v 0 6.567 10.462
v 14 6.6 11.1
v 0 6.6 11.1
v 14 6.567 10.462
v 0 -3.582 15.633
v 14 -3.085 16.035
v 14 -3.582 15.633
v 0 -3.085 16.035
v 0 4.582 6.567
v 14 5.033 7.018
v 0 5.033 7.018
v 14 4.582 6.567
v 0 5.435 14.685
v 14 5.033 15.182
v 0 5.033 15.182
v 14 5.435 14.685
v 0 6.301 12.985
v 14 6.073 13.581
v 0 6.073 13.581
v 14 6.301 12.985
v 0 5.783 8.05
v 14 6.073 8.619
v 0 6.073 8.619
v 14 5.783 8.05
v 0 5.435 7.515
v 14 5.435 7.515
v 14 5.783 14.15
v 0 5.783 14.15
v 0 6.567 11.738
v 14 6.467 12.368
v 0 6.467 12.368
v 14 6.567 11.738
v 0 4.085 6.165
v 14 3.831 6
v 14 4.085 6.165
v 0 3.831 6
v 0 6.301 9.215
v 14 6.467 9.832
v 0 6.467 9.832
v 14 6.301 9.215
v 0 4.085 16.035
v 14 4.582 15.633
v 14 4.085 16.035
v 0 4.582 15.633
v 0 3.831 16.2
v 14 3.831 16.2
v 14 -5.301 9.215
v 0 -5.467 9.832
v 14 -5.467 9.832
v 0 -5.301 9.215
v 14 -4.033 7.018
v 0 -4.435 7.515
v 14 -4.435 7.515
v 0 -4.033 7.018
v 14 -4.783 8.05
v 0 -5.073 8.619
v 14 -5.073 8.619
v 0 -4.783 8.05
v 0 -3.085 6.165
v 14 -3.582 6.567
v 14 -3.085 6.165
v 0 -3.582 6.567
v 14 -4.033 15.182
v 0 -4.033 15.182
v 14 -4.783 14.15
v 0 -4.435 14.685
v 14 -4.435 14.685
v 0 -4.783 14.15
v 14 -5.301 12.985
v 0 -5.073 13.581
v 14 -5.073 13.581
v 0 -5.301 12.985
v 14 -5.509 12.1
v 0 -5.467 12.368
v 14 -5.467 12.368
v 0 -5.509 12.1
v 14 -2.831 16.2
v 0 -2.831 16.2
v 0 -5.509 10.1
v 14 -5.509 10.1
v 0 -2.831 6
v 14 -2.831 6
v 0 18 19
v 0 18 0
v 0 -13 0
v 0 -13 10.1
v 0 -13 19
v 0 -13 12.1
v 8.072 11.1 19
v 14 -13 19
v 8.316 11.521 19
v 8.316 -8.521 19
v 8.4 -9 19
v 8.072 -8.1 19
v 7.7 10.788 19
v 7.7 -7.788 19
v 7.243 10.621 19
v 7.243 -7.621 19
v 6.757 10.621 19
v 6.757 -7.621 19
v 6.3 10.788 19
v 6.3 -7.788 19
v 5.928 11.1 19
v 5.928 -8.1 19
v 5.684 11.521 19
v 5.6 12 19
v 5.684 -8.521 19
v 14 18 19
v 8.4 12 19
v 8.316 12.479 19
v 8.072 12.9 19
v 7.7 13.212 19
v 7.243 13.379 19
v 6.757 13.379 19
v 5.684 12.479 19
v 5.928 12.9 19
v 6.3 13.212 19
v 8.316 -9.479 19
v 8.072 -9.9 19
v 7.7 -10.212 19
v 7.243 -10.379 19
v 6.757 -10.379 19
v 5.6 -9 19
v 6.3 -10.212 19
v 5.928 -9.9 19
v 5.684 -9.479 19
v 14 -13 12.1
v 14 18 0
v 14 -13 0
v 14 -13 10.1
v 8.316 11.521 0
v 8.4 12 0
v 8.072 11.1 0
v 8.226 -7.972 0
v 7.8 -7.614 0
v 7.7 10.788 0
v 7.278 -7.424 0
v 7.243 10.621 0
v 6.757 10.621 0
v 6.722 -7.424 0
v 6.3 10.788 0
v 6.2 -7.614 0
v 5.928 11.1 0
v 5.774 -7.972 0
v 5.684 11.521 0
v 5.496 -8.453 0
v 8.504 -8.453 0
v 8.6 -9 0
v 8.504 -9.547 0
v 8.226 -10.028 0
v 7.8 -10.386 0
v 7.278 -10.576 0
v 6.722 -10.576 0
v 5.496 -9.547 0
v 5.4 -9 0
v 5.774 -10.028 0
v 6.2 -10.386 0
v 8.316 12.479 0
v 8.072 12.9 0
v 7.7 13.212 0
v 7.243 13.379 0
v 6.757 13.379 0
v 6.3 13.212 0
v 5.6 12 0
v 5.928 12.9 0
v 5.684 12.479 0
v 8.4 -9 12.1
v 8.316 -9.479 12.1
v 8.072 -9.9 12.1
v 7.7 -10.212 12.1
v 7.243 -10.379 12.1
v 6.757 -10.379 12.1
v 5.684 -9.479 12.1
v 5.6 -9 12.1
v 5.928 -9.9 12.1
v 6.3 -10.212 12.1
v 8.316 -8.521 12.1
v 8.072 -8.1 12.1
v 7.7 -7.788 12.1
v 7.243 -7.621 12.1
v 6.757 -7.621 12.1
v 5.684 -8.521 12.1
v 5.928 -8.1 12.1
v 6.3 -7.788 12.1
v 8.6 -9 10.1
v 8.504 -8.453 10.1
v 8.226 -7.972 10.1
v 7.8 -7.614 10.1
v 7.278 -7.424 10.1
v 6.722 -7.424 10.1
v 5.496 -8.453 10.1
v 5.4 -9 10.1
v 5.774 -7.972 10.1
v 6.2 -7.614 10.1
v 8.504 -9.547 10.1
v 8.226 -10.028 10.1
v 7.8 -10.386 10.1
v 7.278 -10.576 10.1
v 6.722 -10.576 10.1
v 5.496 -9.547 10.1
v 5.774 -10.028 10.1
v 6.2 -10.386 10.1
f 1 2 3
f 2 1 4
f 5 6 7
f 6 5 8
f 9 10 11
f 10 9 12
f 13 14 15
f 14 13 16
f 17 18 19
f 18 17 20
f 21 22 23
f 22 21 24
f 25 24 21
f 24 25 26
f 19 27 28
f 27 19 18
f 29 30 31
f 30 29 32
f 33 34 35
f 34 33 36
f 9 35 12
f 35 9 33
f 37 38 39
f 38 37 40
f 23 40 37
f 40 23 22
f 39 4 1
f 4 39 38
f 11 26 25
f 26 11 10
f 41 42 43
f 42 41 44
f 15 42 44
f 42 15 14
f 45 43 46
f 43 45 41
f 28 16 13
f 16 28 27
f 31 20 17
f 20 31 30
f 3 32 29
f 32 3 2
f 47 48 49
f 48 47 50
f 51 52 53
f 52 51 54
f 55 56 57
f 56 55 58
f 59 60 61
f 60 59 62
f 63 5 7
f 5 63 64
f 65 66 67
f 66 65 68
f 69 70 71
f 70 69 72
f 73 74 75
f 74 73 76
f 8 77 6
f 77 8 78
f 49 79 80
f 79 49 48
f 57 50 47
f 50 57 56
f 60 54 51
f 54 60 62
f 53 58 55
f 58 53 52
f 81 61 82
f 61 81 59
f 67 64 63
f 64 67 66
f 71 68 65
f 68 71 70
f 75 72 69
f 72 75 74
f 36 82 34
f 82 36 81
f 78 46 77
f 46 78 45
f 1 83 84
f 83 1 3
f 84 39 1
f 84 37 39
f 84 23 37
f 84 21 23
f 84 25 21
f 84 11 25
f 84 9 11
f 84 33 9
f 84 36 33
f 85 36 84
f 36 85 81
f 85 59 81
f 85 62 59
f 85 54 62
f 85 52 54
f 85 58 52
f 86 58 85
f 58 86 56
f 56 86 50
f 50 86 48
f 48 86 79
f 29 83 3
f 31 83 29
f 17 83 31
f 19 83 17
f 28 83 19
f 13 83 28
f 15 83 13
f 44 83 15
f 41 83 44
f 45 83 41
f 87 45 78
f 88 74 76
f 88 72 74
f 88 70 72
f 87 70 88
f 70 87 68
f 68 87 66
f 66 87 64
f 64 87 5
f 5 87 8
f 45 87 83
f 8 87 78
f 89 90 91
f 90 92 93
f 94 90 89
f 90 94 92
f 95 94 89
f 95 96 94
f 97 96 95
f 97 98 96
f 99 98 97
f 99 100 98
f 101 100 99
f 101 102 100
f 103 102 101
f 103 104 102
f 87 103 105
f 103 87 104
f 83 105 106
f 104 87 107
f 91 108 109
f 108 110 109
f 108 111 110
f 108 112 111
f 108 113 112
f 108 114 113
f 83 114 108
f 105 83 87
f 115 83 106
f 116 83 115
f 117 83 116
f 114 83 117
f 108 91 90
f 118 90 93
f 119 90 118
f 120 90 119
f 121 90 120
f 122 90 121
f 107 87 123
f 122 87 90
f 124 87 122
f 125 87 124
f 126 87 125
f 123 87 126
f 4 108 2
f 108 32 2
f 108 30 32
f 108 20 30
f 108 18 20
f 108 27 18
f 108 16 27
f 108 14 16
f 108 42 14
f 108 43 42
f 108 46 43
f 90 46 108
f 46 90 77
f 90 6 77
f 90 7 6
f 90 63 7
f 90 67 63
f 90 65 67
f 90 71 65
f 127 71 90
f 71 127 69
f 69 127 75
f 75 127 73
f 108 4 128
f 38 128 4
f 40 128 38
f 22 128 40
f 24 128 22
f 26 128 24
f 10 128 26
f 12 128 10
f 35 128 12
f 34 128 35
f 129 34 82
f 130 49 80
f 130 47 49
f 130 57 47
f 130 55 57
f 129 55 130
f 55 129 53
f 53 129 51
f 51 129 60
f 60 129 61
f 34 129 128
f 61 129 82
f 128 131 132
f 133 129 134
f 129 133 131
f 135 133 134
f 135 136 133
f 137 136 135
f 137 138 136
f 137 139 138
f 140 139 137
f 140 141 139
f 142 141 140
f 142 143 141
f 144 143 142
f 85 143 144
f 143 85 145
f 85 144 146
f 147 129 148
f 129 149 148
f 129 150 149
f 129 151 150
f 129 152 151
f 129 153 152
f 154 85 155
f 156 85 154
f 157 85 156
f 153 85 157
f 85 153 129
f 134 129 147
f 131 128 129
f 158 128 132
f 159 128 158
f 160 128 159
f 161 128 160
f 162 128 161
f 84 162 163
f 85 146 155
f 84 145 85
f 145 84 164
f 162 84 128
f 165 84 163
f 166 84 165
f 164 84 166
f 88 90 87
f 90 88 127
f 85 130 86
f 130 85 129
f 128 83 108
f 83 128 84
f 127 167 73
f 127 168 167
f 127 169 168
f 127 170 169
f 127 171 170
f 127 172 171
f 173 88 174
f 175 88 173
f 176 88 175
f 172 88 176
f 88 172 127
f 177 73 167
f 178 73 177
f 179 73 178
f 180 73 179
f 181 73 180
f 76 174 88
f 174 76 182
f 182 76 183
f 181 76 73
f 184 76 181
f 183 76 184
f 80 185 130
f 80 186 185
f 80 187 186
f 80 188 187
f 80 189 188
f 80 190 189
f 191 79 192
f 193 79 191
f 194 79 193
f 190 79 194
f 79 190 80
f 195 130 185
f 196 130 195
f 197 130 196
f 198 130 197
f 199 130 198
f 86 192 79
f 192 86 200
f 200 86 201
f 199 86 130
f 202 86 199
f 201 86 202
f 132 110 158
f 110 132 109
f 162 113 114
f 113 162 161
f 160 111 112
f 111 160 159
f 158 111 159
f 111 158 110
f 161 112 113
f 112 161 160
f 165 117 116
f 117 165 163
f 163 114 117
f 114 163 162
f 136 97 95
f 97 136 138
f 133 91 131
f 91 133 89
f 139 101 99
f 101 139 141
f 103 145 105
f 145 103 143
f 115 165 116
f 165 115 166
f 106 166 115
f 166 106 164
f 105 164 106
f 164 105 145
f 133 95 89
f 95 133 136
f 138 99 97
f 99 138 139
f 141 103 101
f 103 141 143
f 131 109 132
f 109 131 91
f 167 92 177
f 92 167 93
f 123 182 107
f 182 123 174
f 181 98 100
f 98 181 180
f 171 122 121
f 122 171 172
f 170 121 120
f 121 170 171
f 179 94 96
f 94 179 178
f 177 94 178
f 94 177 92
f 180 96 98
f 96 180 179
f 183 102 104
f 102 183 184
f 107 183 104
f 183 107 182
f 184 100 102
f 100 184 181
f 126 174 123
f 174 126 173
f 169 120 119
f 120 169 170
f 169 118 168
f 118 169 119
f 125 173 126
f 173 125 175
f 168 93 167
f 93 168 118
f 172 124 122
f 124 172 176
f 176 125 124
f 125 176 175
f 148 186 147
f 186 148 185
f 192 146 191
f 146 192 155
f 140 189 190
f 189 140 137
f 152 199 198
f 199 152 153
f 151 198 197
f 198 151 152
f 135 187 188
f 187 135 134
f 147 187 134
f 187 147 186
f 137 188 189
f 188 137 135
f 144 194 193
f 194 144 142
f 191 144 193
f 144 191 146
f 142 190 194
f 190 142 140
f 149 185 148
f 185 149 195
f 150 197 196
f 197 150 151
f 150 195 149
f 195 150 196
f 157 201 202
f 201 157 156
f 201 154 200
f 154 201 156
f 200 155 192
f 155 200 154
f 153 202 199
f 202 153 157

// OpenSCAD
$fn=18;
difference(){
translate([0,-13,0])cube([14,31,19]);
translate([0,0.5,11.1])rotate([0,90,0])
difference(){
    translate([0,0,-40])cylinder(d=12.2,h=80,$fn=60);
    translate([6.1,0,0])cube([2,16,80],center=true);
    translate([-6.1,0,0])cube([2,16,80],center=true);
}

translate([-40,-20,10.1])cube([80,20,2]);

translate([7,12,-1])cylinder(d=2.8,h=32);    
translate([7,-9,11])cylinder(d=2.8,h=12);
translate([7,-9,-1])cylinder(d=3.2,h=12);
}
